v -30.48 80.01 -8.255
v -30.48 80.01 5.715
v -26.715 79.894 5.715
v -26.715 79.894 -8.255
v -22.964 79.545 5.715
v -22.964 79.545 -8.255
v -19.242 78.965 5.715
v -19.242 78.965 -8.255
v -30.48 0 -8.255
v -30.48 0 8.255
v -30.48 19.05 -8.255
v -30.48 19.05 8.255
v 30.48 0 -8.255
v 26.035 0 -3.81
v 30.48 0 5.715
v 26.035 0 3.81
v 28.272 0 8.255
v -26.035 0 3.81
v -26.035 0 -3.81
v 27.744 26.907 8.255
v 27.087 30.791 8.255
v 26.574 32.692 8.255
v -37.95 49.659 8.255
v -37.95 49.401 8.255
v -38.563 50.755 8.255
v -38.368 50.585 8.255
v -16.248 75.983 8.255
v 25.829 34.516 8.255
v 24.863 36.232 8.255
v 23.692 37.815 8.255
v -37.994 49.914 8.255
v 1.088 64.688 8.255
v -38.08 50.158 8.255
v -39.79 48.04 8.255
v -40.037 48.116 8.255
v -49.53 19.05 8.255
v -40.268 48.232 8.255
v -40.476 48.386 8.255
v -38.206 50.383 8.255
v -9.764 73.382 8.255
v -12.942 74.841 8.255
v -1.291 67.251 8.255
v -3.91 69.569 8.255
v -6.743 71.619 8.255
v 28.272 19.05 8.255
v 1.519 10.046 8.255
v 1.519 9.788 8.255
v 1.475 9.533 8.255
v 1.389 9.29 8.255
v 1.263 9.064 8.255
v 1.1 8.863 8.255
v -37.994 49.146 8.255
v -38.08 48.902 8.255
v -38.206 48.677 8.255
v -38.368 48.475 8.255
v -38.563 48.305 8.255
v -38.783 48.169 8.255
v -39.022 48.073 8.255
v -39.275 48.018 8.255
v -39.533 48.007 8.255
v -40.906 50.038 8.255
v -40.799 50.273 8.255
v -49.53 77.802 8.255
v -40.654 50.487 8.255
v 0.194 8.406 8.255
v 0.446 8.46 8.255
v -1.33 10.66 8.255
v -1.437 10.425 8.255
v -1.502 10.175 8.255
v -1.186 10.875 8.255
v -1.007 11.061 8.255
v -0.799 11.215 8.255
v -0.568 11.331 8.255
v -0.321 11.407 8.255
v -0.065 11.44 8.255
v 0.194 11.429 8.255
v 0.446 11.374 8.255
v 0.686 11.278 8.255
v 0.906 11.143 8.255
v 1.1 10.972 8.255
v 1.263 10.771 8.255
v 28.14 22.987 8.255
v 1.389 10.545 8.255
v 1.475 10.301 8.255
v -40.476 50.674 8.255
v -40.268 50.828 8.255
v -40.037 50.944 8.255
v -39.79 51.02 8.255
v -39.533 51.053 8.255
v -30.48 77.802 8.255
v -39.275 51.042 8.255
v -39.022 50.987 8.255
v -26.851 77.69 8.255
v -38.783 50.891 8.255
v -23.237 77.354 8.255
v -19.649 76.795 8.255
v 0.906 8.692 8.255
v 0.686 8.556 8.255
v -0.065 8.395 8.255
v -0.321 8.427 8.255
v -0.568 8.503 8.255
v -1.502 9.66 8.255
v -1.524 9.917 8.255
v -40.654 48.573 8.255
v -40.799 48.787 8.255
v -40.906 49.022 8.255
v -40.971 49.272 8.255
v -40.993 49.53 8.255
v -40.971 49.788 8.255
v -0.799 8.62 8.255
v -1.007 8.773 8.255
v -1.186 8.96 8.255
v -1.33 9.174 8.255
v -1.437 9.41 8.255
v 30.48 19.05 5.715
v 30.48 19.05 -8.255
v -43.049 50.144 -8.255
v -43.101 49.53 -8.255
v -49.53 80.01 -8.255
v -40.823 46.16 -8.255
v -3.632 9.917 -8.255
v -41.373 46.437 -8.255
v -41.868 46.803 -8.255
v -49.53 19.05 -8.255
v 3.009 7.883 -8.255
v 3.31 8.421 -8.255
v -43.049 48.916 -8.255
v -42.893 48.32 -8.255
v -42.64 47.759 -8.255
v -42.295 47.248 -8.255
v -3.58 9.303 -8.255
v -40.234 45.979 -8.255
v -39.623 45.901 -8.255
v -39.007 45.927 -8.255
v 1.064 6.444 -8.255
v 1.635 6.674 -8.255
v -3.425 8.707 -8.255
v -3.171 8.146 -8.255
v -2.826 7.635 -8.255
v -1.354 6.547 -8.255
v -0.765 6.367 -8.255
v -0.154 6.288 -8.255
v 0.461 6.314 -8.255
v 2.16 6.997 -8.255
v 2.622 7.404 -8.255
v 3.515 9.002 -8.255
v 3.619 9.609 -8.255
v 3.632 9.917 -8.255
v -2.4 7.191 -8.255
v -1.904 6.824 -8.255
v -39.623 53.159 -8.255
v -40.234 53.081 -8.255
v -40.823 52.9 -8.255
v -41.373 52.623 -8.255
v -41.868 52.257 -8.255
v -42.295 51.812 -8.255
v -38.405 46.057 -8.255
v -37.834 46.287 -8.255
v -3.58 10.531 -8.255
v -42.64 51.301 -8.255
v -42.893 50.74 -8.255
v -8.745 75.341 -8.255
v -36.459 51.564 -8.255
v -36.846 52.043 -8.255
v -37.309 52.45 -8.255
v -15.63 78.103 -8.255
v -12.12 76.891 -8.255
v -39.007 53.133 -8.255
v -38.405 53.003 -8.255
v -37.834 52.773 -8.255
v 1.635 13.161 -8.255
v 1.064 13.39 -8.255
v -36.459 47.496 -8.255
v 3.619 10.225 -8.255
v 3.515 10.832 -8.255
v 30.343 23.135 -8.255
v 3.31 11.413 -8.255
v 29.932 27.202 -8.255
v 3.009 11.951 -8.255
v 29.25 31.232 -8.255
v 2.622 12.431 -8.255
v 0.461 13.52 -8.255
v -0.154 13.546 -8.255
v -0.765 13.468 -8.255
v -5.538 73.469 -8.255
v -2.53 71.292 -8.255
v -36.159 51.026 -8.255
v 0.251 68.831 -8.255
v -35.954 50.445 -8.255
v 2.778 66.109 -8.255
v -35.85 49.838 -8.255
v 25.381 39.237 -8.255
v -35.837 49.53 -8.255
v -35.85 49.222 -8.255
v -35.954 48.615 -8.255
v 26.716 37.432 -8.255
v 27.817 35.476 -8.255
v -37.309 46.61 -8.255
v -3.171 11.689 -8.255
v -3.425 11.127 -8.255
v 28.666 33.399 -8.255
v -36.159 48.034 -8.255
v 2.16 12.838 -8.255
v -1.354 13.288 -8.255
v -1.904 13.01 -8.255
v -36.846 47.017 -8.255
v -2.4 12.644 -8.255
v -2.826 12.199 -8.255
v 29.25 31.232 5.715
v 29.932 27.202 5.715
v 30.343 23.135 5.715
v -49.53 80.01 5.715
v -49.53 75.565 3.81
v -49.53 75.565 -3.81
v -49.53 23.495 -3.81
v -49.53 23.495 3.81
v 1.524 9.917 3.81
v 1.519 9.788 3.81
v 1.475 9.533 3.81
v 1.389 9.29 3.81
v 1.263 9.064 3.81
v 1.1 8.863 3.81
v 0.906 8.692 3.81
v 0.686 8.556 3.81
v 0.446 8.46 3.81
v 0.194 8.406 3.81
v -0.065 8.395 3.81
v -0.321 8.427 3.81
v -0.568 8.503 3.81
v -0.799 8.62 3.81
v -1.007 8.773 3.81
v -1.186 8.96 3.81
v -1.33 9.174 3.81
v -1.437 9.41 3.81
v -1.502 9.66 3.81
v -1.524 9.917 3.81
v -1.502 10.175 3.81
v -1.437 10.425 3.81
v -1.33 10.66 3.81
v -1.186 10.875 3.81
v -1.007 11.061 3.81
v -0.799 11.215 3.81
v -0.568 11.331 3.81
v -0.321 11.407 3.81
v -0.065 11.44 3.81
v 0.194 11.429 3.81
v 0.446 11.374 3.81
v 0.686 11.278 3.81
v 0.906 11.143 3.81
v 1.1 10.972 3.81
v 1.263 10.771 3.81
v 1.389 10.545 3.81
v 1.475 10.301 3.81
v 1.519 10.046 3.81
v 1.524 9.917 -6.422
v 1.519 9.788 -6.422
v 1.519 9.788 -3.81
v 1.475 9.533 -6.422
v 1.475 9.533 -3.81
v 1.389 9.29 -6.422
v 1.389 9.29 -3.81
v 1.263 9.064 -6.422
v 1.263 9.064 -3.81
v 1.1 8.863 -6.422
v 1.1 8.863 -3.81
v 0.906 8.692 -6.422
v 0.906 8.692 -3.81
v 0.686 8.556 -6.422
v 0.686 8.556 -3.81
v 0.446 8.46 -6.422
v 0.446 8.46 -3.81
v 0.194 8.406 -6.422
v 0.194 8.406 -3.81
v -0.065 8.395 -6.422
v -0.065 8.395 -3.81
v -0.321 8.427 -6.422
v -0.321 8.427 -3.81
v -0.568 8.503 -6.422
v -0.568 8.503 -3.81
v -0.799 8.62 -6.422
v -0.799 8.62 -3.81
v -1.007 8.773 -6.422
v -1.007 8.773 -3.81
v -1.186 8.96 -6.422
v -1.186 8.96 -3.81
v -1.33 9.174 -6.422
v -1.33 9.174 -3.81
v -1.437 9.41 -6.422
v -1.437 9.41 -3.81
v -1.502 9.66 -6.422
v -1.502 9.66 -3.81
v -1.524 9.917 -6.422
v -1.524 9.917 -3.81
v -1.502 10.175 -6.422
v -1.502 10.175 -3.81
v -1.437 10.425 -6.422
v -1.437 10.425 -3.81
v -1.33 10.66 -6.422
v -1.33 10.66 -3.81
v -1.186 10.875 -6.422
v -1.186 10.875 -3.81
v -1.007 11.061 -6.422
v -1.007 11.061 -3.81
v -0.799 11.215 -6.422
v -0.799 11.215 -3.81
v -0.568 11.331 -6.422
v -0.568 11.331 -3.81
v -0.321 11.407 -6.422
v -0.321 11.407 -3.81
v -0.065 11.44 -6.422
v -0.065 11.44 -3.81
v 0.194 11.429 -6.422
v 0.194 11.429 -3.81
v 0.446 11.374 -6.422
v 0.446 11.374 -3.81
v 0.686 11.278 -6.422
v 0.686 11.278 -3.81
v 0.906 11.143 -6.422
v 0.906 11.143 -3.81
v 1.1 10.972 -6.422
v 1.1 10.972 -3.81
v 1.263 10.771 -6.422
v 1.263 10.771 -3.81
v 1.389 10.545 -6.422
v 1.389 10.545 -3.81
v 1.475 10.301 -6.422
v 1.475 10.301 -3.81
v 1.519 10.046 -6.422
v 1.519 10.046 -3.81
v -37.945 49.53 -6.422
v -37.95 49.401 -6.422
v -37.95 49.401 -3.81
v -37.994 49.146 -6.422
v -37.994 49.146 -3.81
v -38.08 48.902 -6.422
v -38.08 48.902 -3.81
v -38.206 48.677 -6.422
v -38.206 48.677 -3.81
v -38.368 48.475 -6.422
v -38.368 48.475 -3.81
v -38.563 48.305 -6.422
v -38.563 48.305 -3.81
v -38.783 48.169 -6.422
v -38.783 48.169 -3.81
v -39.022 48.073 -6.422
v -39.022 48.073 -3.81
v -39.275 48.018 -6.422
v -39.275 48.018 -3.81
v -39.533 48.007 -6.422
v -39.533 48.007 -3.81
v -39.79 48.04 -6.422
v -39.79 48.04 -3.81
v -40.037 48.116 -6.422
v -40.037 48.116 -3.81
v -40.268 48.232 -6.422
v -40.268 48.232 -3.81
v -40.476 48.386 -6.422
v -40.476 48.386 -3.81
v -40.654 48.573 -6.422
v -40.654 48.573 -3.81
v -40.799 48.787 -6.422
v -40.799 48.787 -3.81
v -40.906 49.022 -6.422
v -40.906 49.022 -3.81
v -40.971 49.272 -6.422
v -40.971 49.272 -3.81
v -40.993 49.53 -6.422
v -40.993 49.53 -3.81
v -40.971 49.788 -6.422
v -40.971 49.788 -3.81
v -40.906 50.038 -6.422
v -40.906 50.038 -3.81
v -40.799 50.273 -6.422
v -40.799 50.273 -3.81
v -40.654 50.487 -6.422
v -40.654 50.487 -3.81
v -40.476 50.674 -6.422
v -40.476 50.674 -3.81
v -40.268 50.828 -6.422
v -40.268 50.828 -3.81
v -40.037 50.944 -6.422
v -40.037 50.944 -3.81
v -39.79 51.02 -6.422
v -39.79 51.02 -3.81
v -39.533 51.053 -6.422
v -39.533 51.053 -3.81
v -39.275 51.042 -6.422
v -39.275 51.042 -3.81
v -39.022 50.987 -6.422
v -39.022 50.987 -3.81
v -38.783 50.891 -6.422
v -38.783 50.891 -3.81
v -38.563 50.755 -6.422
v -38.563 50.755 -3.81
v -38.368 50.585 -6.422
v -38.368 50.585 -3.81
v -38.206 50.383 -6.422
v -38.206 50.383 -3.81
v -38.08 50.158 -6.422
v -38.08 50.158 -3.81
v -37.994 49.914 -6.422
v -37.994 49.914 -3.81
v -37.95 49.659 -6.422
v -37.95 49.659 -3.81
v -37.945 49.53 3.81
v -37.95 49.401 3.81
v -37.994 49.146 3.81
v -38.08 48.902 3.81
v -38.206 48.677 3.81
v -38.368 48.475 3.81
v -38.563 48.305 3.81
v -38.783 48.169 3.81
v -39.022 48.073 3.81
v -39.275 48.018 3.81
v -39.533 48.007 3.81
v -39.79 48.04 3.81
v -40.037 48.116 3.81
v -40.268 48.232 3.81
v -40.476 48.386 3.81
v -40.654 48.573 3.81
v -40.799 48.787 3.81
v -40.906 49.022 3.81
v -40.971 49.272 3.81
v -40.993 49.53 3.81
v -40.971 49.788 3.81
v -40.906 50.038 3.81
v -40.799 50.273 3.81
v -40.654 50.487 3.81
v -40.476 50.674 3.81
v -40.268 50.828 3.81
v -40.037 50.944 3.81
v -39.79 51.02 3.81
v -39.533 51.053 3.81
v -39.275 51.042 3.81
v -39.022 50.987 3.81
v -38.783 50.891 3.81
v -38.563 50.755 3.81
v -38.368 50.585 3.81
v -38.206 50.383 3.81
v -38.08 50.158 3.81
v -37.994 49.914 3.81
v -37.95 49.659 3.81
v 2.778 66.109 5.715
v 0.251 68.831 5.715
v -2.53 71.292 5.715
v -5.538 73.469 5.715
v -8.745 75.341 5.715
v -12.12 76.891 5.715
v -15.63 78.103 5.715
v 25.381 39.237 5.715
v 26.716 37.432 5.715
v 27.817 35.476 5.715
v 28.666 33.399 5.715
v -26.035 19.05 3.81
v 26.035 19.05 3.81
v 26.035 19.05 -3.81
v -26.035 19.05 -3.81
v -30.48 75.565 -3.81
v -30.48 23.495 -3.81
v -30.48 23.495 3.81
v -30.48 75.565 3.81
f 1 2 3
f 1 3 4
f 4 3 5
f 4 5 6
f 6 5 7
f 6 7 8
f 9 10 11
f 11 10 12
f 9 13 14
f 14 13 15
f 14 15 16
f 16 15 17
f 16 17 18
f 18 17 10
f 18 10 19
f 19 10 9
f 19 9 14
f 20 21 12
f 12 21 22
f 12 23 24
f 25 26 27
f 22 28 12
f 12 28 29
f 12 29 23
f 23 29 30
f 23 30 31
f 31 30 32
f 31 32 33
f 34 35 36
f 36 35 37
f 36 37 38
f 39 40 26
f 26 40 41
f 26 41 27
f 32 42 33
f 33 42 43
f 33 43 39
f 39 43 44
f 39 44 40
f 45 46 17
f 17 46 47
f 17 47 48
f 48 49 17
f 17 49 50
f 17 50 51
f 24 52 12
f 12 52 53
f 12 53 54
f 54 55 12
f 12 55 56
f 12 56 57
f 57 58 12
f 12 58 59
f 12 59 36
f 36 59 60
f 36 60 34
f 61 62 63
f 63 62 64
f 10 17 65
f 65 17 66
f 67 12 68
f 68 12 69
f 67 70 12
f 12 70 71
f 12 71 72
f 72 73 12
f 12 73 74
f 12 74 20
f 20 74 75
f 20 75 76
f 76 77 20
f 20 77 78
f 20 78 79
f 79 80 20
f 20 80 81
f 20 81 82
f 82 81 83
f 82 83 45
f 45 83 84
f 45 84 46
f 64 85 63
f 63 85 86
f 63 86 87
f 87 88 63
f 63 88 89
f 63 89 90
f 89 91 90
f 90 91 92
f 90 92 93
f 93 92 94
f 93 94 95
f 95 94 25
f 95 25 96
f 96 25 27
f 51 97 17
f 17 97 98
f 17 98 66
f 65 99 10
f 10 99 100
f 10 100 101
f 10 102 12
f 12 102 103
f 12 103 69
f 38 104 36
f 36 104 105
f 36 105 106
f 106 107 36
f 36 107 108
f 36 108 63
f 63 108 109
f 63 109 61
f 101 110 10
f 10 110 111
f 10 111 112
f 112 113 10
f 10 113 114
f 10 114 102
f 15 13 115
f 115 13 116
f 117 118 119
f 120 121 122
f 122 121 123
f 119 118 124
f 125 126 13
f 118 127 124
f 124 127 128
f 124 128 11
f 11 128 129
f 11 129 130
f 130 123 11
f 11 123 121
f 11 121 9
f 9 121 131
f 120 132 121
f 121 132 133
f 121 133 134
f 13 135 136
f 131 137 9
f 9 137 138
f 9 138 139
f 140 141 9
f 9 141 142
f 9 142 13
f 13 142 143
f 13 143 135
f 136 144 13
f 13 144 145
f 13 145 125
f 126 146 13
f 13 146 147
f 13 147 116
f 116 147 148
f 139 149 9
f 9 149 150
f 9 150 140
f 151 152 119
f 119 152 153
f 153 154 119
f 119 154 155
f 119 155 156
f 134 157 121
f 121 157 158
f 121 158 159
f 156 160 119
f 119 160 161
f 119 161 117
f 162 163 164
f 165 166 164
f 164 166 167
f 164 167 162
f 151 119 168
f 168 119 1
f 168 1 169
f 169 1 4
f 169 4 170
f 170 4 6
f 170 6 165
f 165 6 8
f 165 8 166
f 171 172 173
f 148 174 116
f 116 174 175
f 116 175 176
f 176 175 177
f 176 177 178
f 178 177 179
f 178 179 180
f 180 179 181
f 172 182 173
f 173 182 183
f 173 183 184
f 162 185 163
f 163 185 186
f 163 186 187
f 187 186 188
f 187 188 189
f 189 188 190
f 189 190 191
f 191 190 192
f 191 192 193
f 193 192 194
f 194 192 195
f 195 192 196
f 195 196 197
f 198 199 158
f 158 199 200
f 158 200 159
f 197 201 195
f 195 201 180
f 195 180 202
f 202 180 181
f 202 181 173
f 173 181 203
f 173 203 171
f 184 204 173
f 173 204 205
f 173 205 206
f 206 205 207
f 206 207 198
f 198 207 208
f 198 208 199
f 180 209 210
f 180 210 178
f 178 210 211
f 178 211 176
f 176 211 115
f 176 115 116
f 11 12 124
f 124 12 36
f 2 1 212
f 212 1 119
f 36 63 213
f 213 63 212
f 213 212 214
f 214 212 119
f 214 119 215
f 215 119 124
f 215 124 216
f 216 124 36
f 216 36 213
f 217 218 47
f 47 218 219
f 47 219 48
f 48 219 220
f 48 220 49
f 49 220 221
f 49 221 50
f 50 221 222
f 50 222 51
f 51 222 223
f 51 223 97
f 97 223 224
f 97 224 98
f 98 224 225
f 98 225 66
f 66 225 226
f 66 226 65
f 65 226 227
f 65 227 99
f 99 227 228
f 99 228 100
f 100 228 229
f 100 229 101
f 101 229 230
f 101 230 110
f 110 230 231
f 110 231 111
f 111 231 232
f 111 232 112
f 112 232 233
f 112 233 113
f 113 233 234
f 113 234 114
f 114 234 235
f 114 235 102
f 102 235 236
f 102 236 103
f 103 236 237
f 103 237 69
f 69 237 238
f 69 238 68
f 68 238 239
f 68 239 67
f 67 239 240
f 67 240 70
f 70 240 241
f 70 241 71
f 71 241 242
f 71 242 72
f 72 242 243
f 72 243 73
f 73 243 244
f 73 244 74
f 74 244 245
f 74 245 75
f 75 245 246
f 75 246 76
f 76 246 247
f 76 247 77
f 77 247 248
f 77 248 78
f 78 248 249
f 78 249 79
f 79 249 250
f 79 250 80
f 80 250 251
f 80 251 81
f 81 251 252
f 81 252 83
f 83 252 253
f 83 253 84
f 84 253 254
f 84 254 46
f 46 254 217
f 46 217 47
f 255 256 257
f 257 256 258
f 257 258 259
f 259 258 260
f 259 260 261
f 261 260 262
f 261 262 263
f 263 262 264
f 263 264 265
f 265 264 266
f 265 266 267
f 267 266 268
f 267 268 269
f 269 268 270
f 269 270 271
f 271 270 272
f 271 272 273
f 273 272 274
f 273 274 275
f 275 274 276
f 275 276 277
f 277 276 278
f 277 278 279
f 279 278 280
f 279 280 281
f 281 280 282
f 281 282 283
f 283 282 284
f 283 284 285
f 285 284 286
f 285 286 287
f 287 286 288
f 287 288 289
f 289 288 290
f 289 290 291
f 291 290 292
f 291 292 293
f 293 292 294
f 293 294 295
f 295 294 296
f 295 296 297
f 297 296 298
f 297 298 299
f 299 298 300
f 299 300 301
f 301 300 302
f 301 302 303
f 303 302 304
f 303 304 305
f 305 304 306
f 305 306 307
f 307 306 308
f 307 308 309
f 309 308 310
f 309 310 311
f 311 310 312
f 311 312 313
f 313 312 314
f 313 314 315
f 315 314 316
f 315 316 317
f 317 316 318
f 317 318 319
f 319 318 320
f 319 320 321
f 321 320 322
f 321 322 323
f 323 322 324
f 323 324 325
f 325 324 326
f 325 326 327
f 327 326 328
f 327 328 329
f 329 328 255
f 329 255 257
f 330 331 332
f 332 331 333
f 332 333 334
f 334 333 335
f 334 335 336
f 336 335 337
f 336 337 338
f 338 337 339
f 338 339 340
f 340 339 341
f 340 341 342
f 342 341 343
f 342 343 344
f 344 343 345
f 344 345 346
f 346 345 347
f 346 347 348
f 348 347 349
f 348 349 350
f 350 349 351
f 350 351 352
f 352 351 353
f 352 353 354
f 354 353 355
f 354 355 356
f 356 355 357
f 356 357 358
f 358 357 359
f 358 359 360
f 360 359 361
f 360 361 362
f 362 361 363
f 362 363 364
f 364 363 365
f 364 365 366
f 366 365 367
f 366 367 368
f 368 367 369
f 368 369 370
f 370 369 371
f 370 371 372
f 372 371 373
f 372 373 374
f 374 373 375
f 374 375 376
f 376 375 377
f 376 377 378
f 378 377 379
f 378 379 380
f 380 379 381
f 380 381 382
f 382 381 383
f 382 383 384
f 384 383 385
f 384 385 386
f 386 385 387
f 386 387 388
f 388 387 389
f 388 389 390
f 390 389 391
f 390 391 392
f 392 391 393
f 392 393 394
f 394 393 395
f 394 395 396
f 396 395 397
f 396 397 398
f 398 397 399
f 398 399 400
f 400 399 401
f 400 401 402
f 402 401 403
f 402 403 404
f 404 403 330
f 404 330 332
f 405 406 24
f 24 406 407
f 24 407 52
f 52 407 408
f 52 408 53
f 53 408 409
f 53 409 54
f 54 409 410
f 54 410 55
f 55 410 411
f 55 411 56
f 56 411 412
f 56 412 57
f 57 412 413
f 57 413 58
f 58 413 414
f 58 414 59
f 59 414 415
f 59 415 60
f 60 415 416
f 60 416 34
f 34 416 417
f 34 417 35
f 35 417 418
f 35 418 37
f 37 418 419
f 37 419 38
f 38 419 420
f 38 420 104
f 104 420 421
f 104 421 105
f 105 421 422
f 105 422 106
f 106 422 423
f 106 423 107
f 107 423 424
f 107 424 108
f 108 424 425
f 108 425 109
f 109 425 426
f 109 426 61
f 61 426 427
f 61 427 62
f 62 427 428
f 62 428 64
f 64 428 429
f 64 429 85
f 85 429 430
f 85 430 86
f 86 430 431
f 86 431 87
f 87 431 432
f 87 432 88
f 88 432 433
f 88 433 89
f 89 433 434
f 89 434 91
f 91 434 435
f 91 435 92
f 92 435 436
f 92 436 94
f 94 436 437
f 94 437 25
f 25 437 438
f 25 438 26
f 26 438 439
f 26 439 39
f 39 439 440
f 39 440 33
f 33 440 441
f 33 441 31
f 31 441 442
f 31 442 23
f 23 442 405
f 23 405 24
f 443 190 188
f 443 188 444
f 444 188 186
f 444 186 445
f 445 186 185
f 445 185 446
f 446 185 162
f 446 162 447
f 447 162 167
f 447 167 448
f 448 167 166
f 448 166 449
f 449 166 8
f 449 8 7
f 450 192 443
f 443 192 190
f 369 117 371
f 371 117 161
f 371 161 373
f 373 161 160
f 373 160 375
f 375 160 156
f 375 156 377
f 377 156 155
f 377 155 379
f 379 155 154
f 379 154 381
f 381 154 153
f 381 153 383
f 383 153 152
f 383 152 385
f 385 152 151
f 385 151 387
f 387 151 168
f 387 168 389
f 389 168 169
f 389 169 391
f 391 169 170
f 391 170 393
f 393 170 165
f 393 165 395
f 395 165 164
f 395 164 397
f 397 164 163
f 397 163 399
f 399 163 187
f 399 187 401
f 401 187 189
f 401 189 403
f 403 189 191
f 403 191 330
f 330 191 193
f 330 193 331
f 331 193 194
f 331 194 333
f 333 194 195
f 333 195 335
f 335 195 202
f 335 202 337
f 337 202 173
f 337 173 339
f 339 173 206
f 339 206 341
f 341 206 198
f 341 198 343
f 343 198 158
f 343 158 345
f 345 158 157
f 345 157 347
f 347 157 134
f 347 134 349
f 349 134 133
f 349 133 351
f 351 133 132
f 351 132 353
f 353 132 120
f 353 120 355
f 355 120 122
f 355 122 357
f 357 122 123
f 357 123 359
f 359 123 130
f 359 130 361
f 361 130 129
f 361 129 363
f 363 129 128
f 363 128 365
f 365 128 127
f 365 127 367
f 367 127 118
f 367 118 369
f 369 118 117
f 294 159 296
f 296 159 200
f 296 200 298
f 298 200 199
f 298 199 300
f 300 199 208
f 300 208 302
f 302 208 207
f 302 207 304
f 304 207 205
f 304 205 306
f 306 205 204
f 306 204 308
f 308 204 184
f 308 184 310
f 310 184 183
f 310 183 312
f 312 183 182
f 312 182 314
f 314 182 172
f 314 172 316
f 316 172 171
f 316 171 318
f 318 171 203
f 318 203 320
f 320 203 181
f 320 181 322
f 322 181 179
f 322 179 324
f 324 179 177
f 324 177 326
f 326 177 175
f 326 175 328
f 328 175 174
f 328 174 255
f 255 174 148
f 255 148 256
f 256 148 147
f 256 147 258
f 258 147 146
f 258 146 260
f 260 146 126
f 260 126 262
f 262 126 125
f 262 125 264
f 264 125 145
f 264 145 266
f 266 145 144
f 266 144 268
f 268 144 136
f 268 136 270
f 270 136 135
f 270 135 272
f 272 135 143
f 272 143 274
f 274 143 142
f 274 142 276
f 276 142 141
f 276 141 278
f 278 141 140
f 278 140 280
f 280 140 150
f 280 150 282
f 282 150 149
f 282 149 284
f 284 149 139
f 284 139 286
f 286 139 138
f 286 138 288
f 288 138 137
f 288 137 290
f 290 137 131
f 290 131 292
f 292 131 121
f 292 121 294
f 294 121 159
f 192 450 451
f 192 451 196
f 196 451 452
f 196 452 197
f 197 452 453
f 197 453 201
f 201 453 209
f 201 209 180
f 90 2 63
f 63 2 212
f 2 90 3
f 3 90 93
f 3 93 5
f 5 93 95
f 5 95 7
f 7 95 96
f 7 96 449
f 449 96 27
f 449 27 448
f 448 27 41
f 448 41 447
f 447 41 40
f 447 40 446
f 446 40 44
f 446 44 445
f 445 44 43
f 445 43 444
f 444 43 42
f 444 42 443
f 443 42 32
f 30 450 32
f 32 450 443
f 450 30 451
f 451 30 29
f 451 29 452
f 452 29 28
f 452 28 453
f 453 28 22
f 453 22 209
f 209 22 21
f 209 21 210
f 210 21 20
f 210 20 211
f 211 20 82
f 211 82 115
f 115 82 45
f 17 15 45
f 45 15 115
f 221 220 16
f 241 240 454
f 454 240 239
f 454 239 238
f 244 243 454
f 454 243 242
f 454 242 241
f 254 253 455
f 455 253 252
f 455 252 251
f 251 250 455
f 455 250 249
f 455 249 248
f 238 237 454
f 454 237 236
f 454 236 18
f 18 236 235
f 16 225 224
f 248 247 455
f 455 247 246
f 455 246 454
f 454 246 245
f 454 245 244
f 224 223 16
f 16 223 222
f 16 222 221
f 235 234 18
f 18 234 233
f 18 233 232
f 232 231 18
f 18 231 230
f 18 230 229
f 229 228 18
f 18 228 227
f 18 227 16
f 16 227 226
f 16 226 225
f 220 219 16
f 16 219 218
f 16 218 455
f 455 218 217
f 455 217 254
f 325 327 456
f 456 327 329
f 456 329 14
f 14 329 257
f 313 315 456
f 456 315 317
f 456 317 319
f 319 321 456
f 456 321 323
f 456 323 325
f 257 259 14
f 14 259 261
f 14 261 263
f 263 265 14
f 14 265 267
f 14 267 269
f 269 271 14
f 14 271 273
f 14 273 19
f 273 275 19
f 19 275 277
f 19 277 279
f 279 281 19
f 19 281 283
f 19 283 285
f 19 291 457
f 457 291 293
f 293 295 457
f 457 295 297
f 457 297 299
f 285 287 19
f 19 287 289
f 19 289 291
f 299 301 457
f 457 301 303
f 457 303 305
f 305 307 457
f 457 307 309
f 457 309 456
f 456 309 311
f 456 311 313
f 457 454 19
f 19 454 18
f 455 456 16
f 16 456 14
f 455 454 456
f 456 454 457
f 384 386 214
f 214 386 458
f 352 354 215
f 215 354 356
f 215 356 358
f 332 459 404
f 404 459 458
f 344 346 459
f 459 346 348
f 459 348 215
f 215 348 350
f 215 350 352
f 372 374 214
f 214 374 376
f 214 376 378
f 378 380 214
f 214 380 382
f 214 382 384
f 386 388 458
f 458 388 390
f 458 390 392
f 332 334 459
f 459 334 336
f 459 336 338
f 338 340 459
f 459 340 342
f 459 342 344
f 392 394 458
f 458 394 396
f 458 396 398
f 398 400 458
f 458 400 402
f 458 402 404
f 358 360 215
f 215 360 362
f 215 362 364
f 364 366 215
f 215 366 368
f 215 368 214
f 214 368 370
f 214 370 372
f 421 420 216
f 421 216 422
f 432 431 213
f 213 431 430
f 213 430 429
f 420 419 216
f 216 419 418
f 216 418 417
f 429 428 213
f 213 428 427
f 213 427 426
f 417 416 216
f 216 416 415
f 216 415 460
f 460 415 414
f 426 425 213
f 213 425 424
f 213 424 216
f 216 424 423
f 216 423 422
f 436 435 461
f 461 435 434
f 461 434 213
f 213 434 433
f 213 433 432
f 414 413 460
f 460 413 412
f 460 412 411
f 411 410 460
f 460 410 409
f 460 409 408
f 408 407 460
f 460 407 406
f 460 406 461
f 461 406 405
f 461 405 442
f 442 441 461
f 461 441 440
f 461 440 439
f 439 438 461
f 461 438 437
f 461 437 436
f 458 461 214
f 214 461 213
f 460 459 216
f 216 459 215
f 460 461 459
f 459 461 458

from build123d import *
from OCP.BRepFilletAPI import BRepFilletAPI_MakeChamfer

# Parameters (mm, degrees)
SKETCH1_W           = 60.96
SKETCH1_H           = 16.51
SKETCH1_W_2         = 50.8
SKETCH1_H_2         = 6.35
BOSS_EXTRUDE1_DEPTH = 19.05
BOSS_EXTRUDE2_DEPTH = 16.51
SKETCH5_R           = 1.524
CUT_EXTRUDE1_DEPTH  = 96.537432978
CHAMFER1_SIZE       = 2.1082
CHAMFER1_SIZE2      = 1.832630301
FILLET1_R           = 18.034
CHAMFER2_SIZE       = 2.54
CHAMFER2_SIZE2      = 2.207988314
SKETCH6_W           = 52.07
SKETCH6_H           = 7.62
CUT_EXTRUDE2_DEPTH  = 19.05
SKETCH7_W           = 7.62
SKETCH7_H           = 52.07
CUT_EXTRUDE3_DEPTH  = 19.05


with BuildPart() as part:
    # Sketch1 → Boss-Extrude1 (new body)
    with BuildSketch(Plane(origin=(0, 0, 0), x_dir=(1, 0, 0), z_dir=(0, 1, 0))):
        Rectangle(SKETCH1_W, SKETCH1_H)
        Rectangle(SKETCH1_W_2, SKETCH1_H_2, mode=Mode.SUBTRACT)
    boss_extrude1 = extrude(amount=BOSS_EXTRUDE1_DEPTH)

    # Sketch2 → Boss-Extrude2 (add)
    with BuildSketch(Plane.XY.offset(8.255)):
        with BuildLine():
            Line((-30.48, 19.05), (-30.48, 80.01))
            ThreePointArc((-30.48, 80.01), (12.625229381, 62.155229381), (30.48, 19.05))
            Line((30.48, 19.05), (-30.48, 19.05))
        make_face()
    extrude(amount=-BOSS_EXTRUDE2_DEPTH)

    # Mirror1: Boss-Extrude1 across plane
    add(boss_extrude1.mirror(Plane(origin=(-24.765, 24.765, 0), x_dir=(0, 0, 1), z_dir=(-0.7071067811865488, 0.7071067811865464, 0))))

    # Sketch5 → Cut-Extrude1 (cut, through all)
    with BuildSketch(Plane(origin=(0, 0, -8.255), x_dir=(-1, 0, 0), z_dir=(0, 0, -1))):
        with Locations((0, 9.917240348)):
            Circle(SKETCH5_R)
        with Locations((39.468758027, 49.53)):
            Circle(SKETCH5_R)
        with BuildLine():
            Line((-2.778172553, 66.109095279), (-28.061671506, 36.049832271))
            ThreePointArc((-28.061671506, 36.049832271), (-10.480017479, 64.198627533), (19.242304668, 78.965238493))
            ThreePointArc((19.242304668, 78.965238493), (7.11859344, 74.444363935), (-2.778172553, 66.109095279))
        make_face()
    extrude(amount=-CUT_EXTRUDE1_DEPTH, mode=Mode.SUBTRACT)

    # Chamfer1
    chamfer1_edges = [part.edges().sort_by_distance(p)[0] for p in [
        (1.524, 9.917240348, -8.255),
        (-37.944758027, 49.53, -8.255),
    ]]
    chamfer1_side = [part.faces().sort_by_distance(p)[0] for p in [
        (-12.284487688, 37.419339753, -8.255),
    ]]
    chamfer(chamfer1_edges, length=CHAMFER1_SIZE, length2=CHAMFER1_SIZE2, reference=chamfer1_side[0])

    # Fillet1
    fillet1_edges = [part.edges().sort_by_distance(p)[0] for p in [
        (28.061671506, 36.049832271, 0),
    ]]
    fillet(fillet1_edges, radius=FILLET1_R)

    # Chamfer2: one chamfer whose edges measure the first distance from different faces: ONE call of the kernel's chamfer builder (chamfer() names one face for all edges)
    chamfer2_edges_1 = [part.edges().sort_by_distance(p)[0] for p in [
        (14.079711572, 52.672824674, 8.255),
    ]]
    chamfer2_side_1 = [part.faces().sort_by_distance(p)[0] for p in [
        (14.079711572, 52.672824674, 0),
    ]]
    chamfer2_edges_2 = [part.edges().sort_by_distance(p)[0] for p in [
        (27.816828301, 35.476442899, 8.255),
    ]]
    chamfer2_side_2 = [part.faces().sort_by_distance(p)[0] for p in [
        (27.816828301, 35.476442899, 0),
    ]]
    chamfer2_edges_3 = [part.edges().sort_by_distance(p)[0] for p in [
        (30.171820892, 25.171945968, 8.255),
    ]]
    chamfer2_side_3 = [part.faces().sort_by_distance(p)[0] for p in [
        (30.171820892, 25.171945968, 0),
    ]]
    chamfer2_edges_4 = [part.edges().sort_by_distance(p)[0] for p in [
        (-40.005, 80.01, 8.255),
    ]]
    chamfer2_side_4 = [part.faces().sort_by_distance(p)[0] for p in [
        (-40.005, 80.01, 0),
    ]]
    chamfer2_edges_5 = [part.edges().sort_by_distance(p)[0] for p in [
        (30.48, 9.525, 8.255),
    ]]
    chamfer2_side_5 = [part.faces().sort_by_distance(p)[0] for p in [
        (30.48, 9.525, 0),
    ]]
    chamfer2_edges_6 = [part.edges().sort_by_distance(p)[0] for p in [
        (-24.836921873, 79.748247662, 8.255),
    ]]
    chamfer2_side_6 = [part.faces().sort_by_distance(p)[0] for p in [
        (-24.836921873, 79.748247662, 0),
    ]]
    chamfer2_edges_7 = [part.edges().sort_by_distance(p)[0] for p in [
        (-7.11859344, 74.444363935, 8.255),
    ]]
    chamfer2_side_7 = [part.faces().sort_by_distance(p)[0] for p in [
        (-7.11859344, 74.444363935, 0),
    ]]
    chamfer2 = BRepFilletAPI_MakeChamfer(part.part.solid().wrapped)
    for e in chamfer2_edges_1:
        chamfer2.Add(CHAMFER2_SIZE, CHAMFER2_SIZE2, e.wrapped, chamfer2_side_1[0].wrapped)  # the first distance lies on this face
    for e in chamfer2_edges_2:
        chamfer2.Add(CHAMFER2_SIZE, CHAMFER2_SIZE2, e.wrapped, chamfer2_side_2[0].wrapped)  # the first distance lies on this face
    for e in chamfer2_edges_3:
        chamfer2.Add(CHAMFER2_SIZE, CHAMFER2_SIZE2, e.wrapped, chamfer2_side_3[0].wrapped)  # the first distance lies on this face
    for e in chamfer2_edges_4:
        chamfer2.Add(CHAMFER2_SIZE, CHAMFER2_SIZE2, e.wrapped, chamfer2_side_4[0].wrapped)  # the first distance lies on this face
    for e in chamfer2_edges_5:
        chamfer2.Add(CHAMFER2_SIZE, CHAMFER2_SIZE2, e.wrapped, chamfer2_side_5[0].wrapped)  # the first distance lies on this face
    for e in chamfer2_edges_6:
        chamfer2.Add(CHAMFER2_SIZE, CHAMFER2_SIZE2, e.wrapped, chamfer2_side_6[0].wrapped)  # the first distance lies on this face
    for e in chamfer2_edges_7:
        chamfer2.Add(CHAMFER2_SIZE, CHAMFER2_SIZE2, e.wrapped, chamfer2_side_7[0].wrapped)  # the first distance lies on this face
    add(Compound.cast(chamfer2.Shape()), mode=Mode.REPLACE)

    # Sketch6 → Cut-Extrude2 (cut)
    with BuildSketch(Plane.XZ):
        Rectangle(SKETCH6_W, SKETCH6_H)
    extrude(amount=-CUT_EXTRUDE2_DEPTH, mode=Mode.SUBTRACT)

    # Sketch7 → Cut-Extrude3 (cut)
    with BuildSketch(Plane.ZY.offset(49.53)):
        with Locations((0, 49.53)):
            Rectangle(SKETCH7_W, SKETCH7_H)
    extrude(amount=-CUT_EXTRUDE3_DEPTH, mode=Mode.SUBTRACT)


solid = part.part
